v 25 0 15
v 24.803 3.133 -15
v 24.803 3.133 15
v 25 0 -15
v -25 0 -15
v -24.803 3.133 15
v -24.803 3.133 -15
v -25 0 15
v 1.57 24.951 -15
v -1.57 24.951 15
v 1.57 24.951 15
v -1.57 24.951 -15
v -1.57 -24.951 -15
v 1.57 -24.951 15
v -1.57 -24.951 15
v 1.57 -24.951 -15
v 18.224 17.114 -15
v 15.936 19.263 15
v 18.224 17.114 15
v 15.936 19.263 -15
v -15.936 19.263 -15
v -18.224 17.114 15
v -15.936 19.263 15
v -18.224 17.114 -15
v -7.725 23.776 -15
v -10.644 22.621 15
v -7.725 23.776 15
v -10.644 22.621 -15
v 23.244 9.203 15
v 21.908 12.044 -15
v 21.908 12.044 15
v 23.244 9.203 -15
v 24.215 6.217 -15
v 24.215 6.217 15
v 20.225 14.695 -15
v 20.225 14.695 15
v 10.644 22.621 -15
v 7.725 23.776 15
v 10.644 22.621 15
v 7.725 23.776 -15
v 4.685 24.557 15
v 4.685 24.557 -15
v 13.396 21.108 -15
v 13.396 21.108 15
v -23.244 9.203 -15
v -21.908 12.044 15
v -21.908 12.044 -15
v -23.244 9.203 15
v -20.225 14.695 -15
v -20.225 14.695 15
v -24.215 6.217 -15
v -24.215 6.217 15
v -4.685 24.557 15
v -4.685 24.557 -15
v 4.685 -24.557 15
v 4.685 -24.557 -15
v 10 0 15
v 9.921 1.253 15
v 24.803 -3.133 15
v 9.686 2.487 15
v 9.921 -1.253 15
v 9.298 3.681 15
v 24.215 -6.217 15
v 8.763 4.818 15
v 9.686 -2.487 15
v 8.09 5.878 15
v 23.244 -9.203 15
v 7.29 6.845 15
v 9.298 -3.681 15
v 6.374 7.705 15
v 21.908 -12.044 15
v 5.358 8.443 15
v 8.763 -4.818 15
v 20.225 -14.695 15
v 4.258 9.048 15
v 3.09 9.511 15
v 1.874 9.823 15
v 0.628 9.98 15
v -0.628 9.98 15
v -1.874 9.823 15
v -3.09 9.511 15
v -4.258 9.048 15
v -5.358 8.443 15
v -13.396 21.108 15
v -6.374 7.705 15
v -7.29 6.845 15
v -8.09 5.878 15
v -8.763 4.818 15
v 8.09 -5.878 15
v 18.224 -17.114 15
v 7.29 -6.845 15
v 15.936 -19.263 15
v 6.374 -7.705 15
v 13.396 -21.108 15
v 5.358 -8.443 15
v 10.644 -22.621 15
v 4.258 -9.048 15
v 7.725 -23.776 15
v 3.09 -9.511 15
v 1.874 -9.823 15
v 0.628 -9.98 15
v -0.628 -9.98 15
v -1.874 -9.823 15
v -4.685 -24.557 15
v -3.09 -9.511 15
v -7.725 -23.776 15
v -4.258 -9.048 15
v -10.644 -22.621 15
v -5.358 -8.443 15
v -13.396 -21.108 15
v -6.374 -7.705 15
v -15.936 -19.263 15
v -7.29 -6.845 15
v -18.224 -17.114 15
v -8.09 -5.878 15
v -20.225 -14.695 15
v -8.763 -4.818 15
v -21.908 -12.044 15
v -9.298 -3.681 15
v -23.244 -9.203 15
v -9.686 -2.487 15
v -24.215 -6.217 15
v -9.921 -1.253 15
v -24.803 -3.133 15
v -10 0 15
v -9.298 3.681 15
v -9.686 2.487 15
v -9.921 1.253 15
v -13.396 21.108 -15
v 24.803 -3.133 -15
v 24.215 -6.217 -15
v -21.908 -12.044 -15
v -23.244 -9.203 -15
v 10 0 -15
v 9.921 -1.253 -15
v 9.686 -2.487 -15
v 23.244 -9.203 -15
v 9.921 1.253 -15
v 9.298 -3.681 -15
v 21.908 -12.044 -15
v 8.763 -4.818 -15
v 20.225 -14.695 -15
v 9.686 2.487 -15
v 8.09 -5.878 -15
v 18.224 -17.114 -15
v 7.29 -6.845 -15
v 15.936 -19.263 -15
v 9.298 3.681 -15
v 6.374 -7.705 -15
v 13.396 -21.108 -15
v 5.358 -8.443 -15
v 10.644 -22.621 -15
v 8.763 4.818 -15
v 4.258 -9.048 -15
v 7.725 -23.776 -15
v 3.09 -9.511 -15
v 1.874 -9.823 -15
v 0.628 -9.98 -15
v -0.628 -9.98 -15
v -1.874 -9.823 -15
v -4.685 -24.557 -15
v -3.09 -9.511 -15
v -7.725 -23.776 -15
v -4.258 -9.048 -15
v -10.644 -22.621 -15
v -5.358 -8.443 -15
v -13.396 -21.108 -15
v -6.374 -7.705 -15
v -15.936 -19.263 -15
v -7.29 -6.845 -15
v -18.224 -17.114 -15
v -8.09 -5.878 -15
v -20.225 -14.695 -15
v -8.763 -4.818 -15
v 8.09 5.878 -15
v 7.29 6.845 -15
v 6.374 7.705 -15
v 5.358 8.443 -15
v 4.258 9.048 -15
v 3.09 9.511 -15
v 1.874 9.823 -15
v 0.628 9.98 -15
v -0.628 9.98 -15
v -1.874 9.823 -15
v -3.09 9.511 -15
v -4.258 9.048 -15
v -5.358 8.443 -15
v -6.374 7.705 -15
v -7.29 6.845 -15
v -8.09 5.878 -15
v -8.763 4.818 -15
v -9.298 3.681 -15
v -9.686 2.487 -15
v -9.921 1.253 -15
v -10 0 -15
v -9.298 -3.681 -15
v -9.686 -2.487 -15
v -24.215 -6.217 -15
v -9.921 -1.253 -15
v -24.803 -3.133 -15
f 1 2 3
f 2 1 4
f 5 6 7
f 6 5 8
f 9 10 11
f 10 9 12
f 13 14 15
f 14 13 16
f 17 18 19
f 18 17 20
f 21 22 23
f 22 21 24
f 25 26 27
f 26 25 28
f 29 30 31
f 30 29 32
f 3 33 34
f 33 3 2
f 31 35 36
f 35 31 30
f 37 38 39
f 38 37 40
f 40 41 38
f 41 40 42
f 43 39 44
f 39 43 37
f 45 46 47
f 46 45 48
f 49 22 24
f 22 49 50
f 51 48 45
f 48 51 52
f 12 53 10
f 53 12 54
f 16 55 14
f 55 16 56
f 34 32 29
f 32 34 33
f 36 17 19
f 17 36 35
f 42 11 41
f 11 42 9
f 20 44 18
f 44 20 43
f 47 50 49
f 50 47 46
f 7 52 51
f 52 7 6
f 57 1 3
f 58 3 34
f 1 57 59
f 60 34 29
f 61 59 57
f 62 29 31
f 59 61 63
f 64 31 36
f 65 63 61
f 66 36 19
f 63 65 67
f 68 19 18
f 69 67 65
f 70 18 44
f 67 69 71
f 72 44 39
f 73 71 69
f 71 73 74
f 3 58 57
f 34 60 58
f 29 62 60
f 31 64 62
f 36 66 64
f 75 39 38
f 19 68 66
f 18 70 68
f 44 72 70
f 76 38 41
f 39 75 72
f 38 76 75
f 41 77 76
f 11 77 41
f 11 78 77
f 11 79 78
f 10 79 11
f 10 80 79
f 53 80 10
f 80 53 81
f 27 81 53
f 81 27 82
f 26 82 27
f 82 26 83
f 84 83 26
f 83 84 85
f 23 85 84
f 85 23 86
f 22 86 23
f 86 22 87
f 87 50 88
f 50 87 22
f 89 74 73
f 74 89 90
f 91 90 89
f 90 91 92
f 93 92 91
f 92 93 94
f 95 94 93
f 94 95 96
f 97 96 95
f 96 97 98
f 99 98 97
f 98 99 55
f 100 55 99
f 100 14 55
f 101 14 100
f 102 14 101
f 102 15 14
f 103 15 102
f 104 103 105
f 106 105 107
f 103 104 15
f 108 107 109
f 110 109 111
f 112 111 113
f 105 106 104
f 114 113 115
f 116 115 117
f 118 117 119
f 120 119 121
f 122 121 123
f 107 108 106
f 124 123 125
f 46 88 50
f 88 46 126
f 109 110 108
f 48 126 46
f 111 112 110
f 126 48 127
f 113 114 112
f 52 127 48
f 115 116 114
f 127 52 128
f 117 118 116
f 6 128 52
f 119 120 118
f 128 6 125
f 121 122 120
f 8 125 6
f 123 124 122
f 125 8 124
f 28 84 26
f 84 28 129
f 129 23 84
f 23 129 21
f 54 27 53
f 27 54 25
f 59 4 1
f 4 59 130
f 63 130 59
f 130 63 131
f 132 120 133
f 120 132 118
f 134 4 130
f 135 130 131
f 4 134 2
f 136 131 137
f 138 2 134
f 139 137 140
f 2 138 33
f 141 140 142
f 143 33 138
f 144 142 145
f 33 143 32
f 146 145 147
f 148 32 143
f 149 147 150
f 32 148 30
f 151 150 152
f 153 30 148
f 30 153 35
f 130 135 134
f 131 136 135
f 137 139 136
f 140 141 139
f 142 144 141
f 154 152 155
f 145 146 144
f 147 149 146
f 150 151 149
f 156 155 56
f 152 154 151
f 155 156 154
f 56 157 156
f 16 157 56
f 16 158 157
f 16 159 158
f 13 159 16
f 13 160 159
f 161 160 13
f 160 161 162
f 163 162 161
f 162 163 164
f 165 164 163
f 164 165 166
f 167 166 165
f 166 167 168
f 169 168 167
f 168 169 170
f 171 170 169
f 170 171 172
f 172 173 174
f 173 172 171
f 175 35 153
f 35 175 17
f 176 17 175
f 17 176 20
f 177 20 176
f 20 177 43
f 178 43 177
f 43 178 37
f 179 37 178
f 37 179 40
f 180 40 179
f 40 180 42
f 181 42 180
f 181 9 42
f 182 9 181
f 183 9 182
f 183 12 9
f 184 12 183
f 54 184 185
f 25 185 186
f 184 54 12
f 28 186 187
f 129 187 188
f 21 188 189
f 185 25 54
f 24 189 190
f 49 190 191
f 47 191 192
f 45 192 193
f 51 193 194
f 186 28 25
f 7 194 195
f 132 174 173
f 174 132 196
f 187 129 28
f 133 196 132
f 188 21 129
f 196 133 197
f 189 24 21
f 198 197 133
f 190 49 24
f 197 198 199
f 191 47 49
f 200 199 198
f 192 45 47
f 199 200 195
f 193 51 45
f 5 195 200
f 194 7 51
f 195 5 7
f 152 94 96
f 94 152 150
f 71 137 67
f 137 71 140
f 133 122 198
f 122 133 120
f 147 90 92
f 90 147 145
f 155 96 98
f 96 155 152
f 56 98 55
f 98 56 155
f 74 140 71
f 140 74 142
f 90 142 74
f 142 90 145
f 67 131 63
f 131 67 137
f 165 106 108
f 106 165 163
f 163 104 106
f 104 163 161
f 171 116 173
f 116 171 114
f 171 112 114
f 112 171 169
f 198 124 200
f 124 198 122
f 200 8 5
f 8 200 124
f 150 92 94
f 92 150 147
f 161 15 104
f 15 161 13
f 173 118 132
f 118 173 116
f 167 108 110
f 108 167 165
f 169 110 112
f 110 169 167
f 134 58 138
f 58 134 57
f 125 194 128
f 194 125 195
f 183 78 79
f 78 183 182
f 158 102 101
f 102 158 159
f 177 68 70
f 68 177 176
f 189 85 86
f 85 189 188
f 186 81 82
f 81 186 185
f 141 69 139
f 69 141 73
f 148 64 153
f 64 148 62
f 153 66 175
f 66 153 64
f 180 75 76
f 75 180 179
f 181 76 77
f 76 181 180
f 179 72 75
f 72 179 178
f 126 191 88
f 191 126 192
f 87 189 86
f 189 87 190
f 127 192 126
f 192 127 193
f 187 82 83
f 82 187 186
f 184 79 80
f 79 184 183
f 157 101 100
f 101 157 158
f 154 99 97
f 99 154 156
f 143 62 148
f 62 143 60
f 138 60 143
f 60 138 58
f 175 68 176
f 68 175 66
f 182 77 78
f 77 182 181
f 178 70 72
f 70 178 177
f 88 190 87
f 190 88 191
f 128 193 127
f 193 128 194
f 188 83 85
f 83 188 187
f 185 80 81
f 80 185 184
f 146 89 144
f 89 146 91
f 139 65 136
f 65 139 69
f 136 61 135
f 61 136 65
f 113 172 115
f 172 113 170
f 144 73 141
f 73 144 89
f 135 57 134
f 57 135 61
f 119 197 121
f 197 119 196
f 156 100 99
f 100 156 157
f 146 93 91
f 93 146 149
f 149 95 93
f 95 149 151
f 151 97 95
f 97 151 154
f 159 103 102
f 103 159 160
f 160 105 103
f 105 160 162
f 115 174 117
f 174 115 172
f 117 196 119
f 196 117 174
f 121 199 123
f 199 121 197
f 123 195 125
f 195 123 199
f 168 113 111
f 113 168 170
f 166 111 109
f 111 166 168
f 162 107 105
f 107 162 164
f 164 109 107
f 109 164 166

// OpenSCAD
$fn = 50;


difference() {
	union() {
		translate(v = [0, 0, -15.0000000000]) {
			cylinder(h = 30, r = 25.0000000000);
		}
	}
	union() {
		translate(v = [0, 0, -100.0000000000]) {
			cylinder(h = 200, r = 10);
		}
	}
}
